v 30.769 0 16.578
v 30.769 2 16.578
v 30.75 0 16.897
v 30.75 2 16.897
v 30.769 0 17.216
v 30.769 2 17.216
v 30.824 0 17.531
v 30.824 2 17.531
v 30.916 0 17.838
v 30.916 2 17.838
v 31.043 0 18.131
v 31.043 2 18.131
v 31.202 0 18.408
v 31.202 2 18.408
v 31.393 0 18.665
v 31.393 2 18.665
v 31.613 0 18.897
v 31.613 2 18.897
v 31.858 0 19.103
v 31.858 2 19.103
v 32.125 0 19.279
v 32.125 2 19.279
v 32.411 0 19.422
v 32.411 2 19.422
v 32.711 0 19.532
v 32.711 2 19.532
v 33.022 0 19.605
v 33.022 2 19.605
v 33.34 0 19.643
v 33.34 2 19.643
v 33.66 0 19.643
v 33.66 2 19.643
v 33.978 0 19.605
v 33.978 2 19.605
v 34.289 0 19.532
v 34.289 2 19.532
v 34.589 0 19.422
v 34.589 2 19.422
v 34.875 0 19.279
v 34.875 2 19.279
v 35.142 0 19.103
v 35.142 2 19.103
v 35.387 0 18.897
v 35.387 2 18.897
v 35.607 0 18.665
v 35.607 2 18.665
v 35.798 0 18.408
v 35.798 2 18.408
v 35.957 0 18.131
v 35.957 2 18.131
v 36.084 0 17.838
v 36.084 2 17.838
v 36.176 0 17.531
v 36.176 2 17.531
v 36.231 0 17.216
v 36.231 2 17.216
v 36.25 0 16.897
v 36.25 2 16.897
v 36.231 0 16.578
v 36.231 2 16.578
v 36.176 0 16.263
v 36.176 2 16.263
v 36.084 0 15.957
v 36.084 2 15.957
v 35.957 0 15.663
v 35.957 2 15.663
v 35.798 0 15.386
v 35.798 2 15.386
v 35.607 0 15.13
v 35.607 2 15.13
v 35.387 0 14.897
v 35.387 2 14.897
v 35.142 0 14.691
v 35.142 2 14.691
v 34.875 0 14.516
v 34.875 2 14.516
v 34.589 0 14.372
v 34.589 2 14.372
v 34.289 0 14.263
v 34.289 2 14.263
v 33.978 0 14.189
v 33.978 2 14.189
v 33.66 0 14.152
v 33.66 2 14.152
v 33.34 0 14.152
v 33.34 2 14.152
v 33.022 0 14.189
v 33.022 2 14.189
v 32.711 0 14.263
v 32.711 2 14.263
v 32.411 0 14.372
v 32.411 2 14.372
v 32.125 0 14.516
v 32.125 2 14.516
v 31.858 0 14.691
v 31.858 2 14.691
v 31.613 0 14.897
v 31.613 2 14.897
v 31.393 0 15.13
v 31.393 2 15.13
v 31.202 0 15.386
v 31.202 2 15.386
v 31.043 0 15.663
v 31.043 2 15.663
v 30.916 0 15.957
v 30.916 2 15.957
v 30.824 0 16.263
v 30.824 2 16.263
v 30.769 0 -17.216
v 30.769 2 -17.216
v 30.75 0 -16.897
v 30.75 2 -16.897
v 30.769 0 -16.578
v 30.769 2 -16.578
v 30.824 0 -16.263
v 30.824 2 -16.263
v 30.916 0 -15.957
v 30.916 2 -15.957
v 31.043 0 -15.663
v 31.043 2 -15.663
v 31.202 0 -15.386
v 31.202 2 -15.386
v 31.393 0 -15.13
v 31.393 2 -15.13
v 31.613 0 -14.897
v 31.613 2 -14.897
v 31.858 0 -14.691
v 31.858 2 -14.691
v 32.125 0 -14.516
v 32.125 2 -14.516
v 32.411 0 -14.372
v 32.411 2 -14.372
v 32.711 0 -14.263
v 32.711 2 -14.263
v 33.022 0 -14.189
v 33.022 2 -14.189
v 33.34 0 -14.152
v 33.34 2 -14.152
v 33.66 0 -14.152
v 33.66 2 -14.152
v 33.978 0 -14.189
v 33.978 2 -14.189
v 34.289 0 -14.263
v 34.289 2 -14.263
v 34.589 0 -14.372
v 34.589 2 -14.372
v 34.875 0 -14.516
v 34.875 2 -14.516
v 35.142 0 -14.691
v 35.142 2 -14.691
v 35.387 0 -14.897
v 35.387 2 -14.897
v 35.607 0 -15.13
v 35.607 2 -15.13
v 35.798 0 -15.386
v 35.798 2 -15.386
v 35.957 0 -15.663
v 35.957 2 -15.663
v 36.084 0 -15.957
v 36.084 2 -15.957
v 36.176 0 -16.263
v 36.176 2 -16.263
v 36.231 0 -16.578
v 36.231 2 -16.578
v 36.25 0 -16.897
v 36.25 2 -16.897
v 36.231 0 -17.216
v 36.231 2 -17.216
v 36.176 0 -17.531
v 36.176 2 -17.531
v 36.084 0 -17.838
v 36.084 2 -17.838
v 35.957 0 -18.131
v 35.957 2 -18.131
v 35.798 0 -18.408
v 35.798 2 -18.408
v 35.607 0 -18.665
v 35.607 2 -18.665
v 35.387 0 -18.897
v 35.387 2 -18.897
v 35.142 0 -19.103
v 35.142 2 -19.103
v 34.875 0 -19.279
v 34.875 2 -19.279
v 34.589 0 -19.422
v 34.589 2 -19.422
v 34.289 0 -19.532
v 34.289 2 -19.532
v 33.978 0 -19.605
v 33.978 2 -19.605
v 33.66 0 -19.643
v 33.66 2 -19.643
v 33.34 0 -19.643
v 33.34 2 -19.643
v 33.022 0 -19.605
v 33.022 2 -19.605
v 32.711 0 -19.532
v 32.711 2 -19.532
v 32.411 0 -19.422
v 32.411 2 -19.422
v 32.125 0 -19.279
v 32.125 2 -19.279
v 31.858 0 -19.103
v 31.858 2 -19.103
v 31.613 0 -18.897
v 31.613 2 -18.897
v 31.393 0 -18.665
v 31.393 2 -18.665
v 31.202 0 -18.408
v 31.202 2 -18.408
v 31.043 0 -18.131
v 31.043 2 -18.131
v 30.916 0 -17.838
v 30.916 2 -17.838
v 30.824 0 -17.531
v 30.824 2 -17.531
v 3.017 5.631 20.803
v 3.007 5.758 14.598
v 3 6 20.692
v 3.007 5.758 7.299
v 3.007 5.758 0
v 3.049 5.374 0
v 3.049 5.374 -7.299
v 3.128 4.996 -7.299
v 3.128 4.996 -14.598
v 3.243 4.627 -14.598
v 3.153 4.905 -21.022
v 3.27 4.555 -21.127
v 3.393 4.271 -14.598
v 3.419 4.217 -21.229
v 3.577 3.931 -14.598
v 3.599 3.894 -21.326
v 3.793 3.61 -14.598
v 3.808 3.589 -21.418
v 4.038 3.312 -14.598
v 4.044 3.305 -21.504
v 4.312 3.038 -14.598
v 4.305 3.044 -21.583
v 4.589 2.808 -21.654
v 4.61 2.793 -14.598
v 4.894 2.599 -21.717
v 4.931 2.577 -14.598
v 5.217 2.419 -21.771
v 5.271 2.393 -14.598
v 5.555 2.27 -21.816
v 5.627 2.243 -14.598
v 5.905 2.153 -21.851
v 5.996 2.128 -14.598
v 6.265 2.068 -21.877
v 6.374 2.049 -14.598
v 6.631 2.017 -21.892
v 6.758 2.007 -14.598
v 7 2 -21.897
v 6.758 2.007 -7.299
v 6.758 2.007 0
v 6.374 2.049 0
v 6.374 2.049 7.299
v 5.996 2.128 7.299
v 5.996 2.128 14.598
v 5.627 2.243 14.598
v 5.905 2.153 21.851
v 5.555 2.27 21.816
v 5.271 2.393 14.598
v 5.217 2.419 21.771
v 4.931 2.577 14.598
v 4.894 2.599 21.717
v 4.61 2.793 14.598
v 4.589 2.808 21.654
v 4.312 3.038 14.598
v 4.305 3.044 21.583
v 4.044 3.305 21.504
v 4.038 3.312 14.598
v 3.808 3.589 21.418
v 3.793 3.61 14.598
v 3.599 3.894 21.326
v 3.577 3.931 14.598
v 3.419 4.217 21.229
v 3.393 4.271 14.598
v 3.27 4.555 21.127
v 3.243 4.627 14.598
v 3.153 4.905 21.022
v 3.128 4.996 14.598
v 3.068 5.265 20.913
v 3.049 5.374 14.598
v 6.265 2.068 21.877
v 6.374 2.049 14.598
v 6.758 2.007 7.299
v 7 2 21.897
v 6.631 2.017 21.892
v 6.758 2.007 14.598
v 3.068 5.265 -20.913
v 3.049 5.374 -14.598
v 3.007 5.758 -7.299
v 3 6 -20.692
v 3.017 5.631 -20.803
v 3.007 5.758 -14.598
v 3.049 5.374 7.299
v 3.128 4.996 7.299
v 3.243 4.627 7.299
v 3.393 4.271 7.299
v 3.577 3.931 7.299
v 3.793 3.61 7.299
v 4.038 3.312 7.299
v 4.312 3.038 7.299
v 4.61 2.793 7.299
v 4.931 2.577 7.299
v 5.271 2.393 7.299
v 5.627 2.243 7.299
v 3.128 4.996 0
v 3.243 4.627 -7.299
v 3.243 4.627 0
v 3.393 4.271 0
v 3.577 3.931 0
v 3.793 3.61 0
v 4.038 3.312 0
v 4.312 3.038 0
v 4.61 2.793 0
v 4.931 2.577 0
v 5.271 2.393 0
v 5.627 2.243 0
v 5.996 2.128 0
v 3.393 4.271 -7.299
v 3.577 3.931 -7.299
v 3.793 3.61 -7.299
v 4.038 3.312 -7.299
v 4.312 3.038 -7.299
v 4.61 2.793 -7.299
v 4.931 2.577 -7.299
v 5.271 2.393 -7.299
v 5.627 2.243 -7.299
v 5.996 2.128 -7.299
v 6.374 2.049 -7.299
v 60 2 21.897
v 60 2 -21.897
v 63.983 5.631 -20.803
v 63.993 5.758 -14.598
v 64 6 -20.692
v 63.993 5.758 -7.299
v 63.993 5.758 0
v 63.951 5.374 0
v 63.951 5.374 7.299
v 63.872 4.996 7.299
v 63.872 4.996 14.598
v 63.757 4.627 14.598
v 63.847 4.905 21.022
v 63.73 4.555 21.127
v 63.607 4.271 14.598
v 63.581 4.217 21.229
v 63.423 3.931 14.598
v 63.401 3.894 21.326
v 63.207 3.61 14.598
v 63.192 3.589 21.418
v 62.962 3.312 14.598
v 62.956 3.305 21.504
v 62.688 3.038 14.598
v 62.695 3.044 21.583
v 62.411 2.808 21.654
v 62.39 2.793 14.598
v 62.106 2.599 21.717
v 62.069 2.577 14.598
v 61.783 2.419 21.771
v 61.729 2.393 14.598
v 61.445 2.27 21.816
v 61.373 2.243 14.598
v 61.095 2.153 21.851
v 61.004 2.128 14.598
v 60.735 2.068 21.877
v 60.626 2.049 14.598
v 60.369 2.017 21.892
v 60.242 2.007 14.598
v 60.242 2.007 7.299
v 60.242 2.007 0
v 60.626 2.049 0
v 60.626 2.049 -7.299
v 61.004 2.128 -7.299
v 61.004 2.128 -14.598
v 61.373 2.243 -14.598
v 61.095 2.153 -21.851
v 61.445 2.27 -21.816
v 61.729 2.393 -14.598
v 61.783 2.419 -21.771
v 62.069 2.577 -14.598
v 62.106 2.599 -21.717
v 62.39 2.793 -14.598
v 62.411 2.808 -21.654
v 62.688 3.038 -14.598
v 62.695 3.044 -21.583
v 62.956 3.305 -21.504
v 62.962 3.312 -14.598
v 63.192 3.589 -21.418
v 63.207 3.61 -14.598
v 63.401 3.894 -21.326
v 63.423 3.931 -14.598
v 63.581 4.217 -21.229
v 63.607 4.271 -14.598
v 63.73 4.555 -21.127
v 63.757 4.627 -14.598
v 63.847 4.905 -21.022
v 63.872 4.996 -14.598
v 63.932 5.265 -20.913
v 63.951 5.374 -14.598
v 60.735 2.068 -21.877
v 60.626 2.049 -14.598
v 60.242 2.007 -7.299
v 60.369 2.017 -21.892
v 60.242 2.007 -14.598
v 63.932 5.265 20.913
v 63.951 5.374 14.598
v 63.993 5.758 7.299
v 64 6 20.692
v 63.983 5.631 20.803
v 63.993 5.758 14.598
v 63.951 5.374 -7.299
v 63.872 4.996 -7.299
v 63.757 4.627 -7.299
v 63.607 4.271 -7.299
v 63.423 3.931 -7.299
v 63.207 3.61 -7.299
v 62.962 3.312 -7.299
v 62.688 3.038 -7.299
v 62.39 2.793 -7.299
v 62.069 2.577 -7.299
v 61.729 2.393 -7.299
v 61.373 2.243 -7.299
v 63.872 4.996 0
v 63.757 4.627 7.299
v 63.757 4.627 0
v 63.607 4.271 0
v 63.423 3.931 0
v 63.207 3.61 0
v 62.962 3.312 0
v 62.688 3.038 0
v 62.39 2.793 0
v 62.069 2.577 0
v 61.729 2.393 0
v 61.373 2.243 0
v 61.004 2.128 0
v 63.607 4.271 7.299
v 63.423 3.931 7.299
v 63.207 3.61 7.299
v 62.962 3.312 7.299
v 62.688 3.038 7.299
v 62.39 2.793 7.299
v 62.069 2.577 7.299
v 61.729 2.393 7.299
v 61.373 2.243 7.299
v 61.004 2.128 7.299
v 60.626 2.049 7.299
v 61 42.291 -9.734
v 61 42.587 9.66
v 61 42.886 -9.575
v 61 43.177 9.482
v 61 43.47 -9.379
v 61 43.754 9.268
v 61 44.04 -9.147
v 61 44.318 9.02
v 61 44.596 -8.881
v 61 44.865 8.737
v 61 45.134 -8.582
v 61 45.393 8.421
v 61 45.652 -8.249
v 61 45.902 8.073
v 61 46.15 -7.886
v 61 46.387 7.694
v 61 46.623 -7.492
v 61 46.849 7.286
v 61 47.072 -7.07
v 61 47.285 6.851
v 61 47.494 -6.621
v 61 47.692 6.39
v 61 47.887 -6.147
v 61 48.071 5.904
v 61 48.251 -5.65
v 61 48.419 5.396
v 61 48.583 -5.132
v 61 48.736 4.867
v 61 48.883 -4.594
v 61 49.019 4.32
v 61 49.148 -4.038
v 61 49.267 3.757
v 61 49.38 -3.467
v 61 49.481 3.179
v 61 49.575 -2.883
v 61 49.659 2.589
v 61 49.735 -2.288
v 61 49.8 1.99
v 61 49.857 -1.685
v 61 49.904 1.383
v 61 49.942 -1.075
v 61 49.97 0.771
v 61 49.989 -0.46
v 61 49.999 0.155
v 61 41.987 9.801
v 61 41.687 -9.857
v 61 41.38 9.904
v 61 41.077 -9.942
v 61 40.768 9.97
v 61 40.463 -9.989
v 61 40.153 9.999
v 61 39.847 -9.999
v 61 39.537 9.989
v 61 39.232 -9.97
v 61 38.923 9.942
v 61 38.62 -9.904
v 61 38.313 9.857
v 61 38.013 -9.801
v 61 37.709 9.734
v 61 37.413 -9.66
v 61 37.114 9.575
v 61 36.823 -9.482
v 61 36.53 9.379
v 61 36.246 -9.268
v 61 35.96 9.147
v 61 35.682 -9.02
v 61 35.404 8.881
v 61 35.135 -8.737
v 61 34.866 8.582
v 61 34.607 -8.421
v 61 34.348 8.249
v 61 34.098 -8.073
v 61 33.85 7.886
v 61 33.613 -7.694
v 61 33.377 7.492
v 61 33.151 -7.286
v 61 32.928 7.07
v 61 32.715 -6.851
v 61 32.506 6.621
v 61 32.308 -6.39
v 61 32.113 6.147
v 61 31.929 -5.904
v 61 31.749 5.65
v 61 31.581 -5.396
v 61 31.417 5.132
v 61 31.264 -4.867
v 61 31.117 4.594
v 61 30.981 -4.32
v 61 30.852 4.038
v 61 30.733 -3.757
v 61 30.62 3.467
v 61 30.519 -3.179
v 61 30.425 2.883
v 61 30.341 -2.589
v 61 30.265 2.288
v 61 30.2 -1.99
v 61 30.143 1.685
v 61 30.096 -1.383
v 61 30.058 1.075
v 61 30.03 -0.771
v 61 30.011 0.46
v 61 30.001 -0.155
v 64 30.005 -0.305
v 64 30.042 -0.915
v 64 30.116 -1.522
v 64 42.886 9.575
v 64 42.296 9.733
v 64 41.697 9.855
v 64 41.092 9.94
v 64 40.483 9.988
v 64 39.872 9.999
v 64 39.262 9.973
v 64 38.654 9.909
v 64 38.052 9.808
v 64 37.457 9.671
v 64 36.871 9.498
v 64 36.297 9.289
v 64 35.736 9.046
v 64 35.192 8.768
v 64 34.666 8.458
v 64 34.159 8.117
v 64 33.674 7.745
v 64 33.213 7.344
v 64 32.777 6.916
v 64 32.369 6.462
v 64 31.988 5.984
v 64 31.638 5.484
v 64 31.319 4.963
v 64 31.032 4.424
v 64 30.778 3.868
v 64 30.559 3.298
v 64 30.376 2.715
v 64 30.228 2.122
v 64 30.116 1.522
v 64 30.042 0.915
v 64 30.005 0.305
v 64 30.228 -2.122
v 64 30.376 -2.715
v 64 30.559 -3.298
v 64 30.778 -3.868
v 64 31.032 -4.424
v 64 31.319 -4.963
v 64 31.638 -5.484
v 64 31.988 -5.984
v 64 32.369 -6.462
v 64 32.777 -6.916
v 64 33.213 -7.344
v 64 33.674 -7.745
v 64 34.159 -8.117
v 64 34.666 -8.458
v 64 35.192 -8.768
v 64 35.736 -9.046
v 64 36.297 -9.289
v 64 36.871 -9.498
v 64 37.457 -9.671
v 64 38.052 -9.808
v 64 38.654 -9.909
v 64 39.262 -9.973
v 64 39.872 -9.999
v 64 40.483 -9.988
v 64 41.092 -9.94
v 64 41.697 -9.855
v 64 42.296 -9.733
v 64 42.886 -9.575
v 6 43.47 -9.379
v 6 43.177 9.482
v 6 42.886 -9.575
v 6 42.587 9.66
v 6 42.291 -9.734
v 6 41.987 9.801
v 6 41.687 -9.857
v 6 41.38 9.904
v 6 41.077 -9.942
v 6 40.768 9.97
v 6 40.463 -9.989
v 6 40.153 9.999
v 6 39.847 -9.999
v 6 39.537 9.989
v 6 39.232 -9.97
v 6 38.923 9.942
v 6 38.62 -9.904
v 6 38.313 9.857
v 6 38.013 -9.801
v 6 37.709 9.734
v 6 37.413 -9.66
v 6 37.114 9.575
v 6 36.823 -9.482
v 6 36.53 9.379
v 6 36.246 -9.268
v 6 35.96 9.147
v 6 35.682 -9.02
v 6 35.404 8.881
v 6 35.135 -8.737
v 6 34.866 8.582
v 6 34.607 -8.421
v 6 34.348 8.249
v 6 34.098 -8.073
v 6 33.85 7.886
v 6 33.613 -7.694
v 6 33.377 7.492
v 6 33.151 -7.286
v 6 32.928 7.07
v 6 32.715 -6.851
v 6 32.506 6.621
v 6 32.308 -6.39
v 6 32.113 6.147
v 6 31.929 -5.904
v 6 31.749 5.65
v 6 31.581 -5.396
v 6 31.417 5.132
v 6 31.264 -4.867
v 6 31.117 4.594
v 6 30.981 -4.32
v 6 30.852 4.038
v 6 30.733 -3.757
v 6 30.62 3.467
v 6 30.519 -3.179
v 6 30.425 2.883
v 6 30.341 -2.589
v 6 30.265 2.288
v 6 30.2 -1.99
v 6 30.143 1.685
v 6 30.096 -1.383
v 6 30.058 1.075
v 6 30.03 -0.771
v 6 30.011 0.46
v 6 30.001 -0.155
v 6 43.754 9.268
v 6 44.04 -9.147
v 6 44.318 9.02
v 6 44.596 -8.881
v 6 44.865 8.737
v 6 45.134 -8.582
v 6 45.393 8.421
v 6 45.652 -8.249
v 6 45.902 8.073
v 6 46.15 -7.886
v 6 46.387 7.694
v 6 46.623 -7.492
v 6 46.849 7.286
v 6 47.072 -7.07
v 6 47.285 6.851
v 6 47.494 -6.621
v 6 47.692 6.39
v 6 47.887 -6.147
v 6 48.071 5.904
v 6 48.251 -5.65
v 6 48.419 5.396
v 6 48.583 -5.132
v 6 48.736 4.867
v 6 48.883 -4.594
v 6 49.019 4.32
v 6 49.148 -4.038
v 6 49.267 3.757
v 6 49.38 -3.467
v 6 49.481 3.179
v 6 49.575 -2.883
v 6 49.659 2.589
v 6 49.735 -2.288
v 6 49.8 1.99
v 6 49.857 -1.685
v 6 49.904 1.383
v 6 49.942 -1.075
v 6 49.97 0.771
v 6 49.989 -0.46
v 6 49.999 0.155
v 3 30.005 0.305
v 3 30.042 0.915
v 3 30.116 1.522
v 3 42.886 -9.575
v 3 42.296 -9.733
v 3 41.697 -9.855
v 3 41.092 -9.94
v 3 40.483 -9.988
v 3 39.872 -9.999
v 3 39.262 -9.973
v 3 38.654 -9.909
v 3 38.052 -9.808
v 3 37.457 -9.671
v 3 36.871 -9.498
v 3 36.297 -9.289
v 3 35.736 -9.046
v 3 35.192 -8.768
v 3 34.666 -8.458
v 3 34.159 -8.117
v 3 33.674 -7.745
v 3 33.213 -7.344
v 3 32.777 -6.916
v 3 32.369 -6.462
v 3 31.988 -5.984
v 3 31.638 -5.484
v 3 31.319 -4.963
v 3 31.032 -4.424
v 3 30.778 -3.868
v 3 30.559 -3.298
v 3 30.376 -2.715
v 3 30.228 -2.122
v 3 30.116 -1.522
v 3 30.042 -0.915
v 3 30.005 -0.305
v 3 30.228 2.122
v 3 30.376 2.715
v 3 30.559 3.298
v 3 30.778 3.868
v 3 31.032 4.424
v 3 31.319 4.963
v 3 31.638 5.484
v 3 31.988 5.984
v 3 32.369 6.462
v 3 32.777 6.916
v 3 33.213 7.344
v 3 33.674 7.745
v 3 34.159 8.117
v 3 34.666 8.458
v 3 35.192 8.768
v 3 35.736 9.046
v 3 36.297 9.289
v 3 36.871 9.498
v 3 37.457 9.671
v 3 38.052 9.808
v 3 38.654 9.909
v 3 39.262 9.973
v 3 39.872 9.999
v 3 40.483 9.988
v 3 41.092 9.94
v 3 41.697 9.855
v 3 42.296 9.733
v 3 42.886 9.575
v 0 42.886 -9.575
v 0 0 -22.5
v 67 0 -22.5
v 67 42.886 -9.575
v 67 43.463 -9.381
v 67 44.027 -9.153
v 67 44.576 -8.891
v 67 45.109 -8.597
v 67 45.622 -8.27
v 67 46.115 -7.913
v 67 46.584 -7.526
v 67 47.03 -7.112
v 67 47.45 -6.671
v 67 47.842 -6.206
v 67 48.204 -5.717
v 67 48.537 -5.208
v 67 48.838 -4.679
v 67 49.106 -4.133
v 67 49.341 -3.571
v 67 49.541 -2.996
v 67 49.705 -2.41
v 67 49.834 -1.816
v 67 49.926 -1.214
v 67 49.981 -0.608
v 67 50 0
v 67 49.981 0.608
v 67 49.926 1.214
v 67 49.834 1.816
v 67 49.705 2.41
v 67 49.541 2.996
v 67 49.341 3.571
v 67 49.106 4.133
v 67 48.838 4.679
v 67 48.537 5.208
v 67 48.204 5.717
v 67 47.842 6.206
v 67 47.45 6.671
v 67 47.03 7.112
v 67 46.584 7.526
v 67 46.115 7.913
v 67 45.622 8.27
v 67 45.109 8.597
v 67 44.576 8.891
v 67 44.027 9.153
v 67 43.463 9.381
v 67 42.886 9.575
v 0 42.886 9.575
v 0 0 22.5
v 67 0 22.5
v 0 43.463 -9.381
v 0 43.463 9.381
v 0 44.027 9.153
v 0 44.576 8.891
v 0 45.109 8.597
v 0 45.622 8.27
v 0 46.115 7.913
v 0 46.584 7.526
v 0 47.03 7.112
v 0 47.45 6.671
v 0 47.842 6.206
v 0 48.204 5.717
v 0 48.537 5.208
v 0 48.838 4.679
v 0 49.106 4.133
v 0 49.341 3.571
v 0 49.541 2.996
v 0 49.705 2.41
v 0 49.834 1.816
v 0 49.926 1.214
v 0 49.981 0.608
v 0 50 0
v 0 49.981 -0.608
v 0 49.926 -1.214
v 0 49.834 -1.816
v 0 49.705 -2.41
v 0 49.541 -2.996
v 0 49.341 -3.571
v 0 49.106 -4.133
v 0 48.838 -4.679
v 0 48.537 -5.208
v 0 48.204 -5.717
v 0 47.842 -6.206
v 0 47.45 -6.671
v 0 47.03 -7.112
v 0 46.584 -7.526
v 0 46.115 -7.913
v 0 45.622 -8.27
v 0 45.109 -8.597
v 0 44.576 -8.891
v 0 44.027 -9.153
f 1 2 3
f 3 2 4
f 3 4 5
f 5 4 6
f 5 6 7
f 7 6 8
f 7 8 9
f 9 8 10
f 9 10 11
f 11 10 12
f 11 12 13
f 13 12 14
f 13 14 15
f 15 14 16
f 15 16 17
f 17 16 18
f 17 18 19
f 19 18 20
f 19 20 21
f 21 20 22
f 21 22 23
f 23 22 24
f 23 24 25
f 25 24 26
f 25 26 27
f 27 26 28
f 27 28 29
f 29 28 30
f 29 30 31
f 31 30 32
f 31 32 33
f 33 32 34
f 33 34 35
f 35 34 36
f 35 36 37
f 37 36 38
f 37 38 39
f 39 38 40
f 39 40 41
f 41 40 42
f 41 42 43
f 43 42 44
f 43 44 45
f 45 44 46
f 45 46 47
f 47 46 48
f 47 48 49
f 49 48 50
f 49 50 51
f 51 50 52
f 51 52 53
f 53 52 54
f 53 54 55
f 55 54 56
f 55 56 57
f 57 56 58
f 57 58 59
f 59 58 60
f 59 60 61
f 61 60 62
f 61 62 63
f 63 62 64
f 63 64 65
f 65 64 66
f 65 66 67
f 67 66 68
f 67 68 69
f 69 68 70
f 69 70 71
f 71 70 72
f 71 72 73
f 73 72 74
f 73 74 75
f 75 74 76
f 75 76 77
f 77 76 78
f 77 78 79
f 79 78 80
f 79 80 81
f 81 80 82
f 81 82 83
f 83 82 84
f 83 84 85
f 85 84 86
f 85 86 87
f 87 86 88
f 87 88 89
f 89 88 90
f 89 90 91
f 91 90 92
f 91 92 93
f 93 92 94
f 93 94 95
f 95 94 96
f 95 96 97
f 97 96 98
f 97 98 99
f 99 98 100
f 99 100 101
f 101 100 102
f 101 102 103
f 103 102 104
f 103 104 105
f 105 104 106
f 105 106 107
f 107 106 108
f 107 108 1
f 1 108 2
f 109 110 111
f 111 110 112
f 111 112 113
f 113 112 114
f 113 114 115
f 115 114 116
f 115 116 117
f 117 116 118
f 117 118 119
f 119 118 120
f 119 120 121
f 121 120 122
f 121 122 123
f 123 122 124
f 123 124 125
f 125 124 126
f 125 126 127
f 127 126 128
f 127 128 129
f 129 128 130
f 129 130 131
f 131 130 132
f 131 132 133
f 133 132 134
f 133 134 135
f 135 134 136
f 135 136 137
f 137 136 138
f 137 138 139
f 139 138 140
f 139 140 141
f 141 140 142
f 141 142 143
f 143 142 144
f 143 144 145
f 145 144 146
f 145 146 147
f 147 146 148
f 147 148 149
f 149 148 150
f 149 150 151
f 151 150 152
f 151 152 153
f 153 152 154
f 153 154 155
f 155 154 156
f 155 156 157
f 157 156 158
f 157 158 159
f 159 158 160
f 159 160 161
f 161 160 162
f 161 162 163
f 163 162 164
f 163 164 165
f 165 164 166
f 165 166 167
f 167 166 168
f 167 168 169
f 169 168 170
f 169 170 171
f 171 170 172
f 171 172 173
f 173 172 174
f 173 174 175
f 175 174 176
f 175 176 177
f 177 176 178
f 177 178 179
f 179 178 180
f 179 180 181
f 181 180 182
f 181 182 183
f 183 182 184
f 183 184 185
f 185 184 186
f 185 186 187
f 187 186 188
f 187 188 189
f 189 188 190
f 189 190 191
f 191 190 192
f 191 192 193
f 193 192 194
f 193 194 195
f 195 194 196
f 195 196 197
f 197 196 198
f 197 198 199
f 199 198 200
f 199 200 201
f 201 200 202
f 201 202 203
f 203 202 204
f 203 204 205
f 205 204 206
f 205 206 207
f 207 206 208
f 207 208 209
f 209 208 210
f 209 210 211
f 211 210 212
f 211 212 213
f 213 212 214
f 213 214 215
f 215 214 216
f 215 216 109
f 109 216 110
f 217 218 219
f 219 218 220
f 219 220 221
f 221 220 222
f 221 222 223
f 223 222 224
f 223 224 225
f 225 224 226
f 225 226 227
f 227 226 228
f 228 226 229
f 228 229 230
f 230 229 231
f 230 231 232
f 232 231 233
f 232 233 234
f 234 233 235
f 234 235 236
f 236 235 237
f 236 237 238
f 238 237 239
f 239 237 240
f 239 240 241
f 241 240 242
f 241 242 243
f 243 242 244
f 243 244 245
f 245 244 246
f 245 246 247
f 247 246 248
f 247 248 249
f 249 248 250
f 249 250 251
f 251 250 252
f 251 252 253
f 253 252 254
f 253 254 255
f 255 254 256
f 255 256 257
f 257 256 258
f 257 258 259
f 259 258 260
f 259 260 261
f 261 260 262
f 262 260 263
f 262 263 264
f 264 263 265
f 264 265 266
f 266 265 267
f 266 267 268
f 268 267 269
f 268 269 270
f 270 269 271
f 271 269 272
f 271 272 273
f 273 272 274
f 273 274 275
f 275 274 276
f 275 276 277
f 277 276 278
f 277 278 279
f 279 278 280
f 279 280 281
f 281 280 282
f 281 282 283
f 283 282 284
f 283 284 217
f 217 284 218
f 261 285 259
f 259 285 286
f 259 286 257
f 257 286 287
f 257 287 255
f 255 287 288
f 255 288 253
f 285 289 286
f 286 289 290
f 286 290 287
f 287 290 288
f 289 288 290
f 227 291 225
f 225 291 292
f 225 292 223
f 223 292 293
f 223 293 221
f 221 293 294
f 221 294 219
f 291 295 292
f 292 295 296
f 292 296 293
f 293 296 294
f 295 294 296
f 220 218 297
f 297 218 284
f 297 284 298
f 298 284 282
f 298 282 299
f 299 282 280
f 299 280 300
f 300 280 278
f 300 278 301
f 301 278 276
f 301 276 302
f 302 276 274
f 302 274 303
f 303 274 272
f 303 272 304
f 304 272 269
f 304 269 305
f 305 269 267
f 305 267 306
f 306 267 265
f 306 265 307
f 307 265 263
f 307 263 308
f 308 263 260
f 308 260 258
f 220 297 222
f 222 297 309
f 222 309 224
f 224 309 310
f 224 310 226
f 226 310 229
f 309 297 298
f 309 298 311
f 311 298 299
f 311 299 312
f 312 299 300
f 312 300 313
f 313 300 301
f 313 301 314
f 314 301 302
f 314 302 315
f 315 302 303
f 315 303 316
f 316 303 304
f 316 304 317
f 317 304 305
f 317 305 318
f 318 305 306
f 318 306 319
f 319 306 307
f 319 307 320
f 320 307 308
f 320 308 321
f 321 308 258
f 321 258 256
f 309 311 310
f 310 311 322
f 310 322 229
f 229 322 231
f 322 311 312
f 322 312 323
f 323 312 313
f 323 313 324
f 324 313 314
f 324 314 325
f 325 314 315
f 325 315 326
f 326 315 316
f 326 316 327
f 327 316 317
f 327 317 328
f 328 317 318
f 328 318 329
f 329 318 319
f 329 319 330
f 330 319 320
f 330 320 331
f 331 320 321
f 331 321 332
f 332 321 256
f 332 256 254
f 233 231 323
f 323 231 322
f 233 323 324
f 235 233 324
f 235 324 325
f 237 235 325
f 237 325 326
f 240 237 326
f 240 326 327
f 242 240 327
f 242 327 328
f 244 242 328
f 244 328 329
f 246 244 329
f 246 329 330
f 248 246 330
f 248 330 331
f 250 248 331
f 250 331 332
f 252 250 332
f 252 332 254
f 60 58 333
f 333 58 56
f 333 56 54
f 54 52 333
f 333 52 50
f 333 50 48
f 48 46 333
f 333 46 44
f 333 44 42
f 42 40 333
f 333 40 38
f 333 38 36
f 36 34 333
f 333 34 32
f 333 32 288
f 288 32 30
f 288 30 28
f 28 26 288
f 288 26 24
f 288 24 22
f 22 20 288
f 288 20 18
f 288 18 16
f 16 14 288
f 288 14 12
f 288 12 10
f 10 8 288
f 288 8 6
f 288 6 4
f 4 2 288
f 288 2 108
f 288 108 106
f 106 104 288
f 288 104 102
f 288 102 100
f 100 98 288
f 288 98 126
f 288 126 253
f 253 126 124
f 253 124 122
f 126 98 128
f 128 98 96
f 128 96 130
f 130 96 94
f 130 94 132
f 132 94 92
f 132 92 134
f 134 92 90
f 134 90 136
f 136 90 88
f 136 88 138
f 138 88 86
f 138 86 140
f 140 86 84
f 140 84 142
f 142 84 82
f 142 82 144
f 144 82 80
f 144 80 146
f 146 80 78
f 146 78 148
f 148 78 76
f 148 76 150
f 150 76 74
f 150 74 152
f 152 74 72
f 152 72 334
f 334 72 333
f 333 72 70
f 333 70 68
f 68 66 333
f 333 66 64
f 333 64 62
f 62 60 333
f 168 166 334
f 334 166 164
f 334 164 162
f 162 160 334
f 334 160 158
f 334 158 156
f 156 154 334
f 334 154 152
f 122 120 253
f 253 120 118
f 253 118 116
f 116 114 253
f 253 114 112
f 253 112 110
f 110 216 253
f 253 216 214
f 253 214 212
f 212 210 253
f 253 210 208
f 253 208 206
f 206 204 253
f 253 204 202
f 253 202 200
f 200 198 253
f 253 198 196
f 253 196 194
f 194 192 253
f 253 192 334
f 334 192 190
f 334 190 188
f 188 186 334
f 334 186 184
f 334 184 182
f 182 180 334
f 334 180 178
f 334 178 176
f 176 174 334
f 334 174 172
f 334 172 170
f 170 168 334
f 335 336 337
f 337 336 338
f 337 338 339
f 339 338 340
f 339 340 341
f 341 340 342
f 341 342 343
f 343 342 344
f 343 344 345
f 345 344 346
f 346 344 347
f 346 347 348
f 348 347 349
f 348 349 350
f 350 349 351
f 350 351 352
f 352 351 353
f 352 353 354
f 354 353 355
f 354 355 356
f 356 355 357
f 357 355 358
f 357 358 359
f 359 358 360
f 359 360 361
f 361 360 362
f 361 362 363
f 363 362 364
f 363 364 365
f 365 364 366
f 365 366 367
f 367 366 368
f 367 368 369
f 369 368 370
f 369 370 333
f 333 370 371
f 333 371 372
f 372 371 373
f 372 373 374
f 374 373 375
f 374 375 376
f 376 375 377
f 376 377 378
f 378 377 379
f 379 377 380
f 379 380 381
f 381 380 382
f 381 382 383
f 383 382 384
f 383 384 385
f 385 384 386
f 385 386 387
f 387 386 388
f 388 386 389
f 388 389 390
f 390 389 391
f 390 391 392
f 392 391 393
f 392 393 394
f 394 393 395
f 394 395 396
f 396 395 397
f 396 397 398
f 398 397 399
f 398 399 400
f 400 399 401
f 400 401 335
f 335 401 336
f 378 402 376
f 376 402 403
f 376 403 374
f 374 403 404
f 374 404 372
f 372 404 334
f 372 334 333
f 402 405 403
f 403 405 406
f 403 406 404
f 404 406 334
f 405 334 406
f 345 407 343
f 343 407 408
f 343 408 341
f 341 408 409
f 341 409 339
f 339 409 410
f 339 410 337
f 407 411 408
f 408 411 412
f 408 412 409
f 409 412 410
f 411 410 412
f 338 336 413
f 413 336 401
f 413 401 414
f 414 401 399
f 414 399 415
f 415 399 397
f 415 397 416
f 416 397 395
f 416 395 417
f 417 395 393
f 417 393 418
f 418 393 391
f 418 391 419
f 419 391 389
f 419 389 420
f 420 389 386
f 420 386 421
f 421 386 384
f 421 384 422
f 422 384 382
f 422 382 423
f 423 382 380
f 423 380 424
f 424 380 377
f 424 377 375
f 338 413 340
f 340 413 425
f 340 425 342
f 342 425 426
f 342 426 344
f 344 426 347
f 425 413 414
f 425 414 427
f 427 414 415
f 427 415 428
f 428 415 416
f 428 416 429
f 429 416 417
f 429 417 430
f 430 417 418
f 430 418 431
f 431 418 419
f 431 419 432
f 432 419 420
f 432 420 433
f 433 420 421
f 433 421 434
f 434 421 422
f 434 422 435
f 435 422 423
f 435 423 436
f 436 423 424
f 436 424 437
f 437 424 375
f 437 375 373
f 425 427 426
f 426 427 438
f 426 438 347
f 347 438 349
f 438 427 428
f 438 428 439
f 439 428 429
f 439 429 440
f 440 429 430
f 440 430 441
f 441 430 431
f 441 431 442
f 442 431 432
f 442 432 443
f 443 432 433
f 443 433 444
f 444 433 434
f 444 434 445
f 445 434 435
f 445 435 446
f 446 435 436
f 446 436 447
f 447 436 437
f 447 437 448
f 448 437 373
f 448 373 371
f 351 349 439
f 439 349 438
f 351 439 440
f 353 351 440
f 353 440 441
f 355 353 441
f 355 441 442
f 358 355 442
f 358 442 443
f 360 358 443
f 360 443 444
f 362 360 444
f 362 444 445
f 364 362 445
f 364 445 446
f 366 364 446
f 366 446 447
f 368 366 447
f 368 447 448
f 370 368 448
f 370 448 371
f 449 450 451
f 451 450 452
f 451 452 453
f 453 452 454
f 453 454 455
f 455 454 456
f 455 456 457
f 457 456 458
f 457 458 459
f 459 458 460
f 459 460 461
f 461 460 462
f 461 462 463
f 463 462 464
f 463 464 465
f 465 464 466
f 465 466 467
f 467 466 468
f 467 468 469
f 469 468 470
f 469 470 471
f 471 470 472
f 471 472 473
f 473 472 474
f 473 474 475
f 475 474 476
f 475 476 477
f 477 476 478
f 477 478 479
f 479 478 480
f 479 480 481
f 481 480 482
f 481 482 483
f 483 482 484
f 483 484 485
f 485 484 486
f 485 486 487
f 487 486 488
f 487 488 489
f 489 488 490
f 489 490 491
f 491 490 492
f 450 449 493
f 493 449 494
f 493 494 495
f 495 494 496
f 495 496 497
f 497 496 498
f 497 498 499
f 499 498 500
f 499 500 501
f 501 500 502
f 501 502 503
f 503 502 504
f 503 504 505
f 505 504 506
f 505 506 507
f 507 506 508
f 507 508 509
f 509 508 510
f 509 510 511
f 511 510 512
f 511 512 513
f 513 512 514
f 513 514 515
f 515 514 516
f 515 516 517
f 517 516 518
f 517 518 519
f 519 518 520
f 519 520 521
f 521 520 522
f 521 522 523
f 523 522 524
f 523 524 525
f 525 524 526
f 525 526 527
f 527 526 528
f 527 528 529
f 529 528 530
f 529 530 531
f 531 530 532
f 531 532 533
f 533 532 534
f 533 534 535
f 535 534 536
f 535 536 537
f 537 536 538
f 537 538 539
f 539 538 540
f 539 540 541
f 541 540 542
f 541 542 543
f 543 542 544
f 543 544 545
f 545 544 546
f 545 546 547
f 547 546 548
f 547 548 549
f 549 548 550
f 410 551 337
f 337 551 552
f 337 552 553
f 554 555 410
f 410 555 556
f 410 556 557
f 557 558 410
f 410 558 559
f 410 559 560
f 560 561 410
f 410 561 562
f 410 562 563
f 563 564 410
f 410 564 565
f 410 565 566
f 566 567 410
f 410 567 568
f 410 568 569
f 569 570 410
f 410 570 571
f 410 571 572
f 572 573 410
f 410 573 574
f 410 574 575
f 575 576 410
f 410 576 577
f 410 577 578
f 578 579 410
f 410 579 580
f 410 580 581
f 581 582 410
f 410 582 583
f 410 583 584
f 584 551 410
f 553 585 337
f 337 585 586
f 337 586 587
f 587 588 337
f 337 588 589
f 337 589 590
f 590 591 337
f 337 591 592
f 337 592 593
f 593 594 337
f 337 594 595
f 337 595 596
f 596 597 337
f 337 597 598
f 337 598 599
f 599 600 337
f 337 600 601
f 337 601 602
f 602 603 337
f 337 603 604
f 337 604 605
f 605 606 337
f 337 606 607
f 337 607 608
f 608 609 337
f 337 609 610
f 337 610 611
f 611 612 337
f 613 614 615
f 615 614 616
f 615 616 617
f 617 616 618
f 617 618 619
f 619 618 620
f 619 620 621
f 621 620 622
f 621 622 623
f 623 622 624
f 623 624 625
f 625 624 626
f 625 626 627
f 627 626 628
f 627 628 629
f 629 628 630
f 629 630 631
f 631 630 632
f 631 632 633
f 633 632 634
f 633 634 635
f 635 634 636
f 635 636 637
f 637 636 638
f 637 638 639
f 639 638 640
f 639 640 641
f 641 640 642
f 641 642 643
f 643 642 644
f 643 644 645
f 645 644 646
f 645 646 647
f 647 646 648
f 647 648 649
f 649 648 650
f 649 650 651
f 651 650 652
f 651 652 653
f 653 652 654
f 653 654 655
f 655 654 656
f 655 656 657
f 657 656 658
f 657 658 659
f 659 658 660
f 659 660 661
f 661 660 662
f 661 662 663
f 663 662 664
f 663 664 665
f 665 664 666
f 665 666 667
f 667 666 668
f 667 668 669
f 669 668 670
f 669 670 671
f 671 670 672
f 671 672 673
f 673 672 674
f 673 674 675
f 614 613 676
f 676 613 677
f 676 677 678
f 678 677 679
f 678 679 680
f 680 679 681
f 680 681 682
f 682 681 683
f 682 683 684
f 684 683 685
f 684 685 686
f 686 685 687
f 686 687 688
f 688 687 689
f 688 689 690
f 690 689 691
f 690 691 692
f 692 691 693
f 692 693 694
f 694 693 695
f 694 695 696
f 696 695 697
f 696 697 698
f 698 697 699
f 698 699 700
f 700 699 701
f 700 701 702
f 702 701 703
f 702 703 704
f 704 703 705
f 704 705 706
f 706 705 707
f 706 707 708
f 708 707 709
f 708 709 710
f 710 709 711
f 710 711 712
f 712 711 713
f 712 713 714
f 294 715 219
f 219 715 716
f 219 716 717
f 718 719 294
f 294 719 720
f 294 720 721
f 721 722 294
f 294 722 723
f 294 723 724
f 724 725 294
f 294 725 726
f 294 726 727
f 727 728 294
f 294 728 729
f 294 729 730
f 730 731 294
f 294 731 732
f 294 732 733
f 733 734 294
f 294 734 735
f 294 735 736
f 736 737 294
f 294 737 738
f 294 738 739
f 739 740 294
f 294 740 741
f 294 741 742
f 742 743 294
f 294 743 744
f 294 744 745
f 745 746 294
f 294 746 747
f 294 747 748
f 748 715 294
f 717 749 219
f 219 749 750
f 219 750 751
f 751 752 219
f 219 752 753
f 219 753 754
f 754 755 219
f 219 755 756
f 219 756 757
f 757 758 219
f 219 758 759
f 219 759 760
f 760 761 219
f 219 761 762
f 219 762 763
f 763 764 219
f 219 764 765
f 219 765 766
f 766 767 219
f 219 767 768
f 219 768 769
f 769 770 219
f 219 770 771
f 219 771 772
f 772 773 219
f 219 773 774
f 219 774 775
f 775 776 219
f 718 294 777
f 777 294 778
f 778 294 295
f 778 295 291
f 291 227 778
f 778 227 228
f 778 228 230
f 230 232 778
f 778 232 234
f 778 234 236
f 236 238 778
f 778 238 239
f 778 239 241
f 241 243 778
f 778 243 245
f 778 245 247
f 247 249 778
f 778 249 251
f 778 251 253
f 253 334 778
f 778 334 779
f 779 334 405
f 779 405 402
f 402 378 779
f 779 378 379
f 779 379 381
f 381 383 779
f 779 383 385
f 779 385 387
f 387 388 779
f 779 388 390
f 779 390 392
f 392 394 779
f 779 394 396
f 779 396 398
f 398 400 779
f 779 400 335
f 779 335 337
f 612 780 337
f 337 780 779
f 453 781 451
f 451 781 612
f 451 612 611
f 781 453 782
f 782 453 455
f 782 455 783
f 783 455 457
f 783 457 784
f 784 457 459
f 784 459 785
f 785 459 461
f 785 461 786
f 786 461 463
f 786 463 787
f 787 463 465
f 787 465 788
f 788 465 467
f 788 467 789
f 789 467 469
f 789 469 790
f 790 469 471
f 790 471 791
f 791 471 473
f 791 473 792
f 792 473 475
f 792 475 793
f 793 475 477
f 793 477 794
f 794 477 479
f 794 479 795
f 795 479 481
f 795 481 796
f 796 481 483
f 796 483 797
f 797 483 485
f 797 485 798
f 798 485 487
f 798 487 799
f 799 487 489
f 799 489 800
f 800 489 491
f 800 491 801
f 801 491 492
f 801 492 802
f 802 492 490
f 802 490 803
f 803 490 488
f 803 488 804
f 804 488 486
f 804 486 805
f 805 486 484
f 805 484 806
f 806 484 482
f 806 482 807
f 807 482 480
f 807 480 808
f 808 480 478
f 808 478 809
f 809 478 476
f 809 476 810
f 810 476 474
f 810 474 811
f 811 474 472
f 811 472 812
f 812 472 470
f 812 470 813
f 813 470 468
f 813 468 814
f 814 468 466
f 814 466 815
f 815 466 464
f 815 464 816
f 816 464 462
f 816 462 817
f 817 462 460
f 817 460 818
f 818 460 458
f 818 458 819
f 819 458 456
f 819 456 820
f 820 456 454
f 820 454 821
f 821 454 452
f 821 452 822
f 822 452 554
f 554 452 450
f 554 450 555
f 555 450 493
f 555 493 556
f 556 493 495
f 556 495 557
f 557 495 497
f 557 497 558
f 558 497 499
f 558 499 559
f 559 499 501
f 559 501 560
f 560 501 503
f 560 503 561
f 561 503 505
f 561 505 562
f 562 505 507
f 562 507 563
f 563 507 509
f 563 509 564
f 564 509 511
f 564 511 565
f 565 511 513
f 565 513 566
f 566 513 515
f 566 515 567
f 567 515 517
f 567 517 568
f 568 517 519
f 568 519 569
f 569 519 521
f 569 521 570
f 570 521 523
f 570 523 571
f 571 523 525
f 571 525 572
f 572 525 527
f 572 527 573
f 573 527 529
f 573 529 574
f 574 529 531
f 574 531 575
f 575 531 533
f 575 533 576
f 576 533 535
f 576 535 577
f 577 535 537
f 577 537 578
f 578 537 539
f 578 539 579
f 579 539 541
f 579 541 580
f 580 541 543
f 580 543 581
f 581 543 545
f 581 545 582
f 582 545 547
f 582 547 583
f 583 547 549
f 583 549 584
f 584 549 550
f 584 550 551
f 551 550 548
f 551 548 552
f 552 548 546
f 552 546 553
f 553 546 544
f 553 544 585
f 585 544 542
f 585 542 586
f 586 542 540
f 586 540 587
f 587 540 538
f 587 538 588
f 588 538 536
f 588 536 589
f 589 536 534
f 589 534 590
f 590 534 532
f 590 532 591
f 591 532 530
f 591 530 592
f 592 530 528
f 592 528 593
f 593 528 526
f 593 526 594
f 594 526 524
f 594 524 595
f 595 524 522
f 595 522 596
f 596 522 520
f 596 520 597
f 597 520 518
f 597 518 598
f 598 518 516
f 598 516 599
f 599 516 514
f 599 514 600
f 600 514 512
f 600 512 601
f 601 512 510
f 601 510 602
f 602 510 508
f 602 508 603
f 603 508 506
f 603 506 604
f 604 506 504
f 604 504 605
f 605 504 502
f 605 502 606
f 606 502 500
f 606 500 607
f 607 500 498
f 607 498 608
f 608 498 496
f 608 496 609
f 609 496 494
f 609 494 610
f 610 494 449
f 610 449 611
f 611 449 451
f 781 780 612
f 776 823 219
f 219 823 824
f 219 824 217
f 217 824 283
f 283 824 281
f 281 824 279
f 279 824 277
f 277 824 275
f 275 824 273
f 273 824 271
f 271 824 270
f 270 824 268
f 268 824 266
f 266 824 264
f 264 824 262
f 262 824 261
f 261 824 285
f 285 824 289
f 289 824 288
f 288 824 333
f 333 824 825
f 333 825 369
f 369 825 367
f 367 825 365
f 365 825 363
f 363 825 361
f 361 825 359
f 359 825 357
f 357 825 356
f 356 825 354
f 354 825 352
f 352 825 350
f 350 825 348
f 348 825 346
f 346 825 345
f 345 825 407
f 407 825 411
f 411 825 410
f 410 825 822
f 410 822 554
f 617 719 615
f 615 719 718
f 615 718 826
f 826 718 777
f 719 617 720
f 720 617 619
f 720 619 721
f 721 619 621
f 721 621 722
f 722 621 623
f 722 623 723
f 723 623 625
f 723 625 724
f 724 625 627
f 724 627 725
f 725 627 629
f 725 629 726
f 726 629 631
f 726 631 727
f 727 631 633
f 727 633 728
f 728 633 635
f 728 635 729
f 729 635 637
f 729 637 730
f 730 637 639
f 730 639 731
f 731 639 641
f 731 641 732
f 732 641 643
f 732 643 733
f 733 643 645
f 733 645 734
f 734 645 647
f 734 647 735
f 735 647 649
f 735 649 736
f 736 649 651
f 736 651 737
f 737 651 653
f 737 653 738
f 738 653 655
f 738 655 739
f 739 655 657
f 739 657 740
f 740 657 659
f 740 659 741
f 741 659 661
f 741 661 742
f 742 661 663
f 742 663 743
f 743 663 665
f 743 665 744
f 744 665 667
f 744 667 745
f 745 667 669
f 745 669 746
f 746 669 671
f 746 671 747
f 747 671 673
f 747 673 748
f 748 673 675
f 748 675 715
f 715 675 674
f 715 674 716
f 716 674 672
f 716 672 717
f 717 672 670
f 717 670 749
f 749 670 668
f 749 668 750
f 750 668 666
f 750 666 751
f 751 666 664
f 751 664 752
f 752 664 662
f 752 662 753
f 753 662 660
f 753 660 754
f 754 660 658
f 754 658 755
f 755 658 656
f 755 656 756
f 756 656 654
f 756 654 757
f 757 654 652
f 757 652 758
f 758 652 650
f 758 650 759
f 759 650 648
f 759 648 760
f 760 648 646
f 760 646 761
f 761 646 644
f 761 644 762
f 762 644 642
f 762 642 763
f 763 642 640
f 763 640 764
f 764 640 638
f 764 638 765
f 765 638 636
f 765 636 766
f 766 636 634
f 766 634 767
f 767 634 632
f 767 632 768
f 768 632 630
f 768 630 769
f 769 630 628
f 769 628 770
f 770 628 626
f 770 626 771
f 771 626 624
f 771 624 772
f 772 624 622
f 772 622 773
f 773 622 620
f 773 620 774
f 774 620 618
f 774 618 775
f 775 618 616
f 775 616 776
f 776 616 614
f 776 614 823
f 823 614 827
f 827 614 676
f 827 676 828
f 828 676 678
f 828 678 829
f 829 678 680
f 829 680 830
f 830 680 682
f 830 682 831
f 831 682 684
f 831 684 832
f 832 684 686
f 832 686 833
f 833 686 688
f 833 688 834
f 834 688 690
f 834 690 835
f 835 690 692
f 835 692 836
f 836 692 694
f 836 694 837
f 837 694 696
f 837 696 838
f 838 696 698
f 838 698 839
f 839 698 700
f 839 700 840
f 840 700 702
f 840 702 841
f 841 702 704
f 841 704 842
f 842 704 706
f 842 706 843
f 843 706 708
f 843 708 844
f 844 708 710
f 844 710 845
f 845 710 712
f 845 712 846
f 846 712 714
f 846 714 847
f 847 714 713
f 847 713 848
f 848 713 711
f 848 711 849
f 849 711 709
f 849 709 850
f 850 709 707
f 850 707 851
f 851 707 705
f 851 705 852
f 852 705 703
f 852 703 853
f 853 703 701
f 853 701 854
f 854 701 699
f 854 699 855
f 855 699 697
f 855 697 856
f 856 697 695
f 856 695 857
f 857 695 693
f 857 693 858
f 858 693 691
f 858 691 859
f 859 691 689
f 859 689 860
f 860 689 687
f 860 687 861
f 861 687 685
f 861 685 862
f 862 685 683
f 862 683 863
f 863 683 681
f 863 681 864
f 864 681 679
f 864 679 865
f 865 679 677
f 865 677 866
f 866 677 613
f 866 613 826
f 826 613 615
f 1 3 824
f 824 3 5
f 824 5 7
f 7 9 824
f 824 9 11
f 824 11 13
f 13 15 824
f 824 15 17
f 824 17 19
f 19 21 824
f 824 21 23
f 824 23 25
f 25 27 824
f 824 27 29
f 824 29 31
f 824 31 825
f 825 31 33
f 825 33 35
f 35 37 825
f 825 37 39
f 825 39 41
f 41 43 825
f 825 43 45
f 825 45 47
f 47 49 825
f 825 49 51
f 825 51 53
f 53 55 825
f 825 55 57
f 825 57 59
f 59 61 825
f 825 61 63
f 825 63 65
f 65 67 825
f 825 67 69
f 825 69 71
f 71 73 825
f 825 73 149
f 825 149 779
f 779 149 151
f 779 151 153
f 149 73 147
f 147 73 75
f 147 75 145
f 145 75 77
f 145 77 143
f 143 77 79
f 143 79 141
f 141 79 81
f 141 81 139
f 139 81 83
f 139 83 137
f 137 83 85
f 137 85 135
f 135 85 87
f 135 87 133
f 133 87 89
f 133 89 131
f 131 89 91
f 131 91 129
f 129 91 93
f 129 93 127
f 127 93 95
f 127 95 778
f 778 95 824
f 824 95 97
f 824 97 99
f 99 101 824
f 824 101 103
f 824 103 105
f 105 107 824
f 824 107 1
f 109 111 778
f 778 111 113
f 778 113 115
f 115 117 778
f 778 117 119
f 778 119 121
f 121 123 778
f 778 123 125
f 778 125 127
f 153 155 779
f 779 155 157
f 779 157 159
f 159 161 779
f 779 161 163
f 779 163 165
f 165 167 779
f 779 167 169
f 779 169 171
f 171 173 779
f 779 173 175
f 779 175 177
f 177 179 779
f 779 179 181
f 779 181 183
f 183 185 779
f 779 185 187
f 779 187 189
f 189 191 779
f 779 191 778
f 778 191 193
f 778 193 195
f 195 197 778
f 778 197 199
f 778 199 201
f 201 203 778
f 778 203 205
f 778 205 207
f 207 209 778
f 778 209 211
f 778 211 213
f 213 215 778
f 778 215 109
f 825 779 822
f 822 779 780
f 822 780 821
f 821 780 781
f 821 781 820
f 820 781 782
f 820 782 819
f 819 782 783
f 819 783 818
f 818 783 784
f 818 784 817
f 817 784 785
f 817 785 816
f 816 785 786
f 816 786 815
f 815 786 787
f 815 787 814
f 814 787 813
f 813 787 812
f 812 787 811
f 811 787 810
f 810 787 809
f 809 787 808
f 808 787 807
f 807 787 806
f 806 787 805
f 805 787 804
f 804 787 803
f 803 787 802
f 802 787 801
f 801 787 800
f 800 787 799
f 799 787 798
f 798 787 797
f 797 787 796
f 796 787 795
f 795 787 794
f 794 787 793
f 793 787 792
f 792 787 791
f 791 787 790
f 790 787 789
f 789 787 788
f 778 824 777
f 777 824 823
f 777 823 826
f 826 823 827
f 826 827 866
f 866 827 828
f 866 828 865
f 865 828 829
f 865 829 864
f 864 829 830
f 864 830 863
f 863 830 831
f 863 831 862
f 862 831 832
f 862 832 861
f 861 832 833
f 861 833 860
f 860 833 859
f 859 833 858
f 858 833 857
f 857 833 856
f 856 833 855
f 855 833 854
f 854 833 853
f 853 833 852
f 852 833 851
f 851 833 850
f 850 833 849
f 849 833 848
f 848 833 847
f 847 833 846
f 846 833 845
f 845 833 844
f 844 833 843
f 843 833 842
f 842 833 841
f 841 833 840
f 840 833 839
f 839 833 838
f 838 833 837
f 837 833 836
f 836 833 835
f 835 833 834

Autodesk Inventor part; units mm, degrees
ref_plane "YZ Plane" through (0, 0, 0) normal (1, 0, 0) x (0, 1, 0)
ref_plane "XZ Plane" through (0, 0, 0) normal (0, 1, 0) x (-1, 0, 0)
sketch "Sketch1" plane through (0, 0, 0) normal (1, 0, 0) x (0, 1, 0)
  circle A0 centre (40, 0) radius 32 construction
  arc A1 (42.8857, -9.5746) -> (42.8857, 9.5746) centre (40, 0) ccw
  line L0 (42.8857, -9.5746) -> (0, -22.5)
  line L1 (0, -22.5) -> (0, 0)
  line L2 (0, 0) -> (28, 0) construction
  line L3 (42.8857, 9.5746) -> (0, 22.5)
  line L4 (0, 22.5) -> (0, 0)
  line L5 (40, 0) -> (28, 0) construction
  dimension "d0" = 20
  dimension "d1" = 64
  dimension "d2" = 40
  dimension "d3" = 45
extrude "Extrusion1" add sketch "Sketch1" along normal blind 67
ref_plane "Work Plane1" through (0, 2, -22.5) normal (0, -1, 0) x (1, 0, 0)
sketch "Sketch2" plane through (0, 2, -22.5) normal (0, -1, 0) x (1, 0, 0)
  line L0 (0, 45) -> (0, 0) construction
  line L1 (0, 0) -> (67, 0) construction
  line L2 (67, 45) -> (67, 0) construction
  line L3 (0, 45) -> (67, 45) construction
  line L4 (0, 45) -> (67, 45) construction
  line L5 (0, 0) -> (67, 0) construction
  line L6 (64, 45) -> (3, 45)
  line L7 (3, 45) -> (3, 0)
  line L8 (3, 0) -> (64, 0)
  line L9 (64, 0) -> (64, 45)
  line L10 (67, 45) -> (67, 0) projected
  line L11 (67, 22.5) -> (64, 22.5) construction
  line L12 (0, 22.5) -> (3, 22.5) construction
  dimension "d7" = 61
extrude "Extrusion2" cut sketch "Sketch2" against normal through all
sketch "Sketch3" plane through (3, 2, 21.8972) normal (1, 0, 0) x (0, 0, -1)
  arc A0 (31.4718, 40.8857) -> (12.3226, 40.8857) centre (21.8972, 38) ccw projected
  circle A1 centre (21.8972, 38) radius 10
  point P0 (21.8972, -2)
extrude "Extrusion3" add sketch "Sketch3" along normal blind 3
sketch "Sketch4" plane through (64, 2, -21.8972) normal (-1, 0, 0) x (0, 0, 1)
  arc A0 (31.4718, 40.8857) -> (12.3226, 40.8857) centre (21.8972, 38) ccw projected
  circle A1 centre (21.8972, 38) radius 10
  point P0 (21.8972, -2)
  point P1 (12.3226, 40.8857)
extrude "Extrusion4" add sketch "Sketch4" along normal blind 3
fillet "Fillet1" radius 4 2 edges at (64, 2, 0) (3, 2, 0)
sketch "Sketch5" plane through (0, 2, -22.5) normal (0, 1, 0) x (1, 0, 0)
  line L0 (60, -44.3972) -> (7, -44.3972) projected
  line L1 (33.5, -44.3972) -> (33.5, -0.6028) construction
  line L2 (7, -0.6028) -> (60, -0.6028) projected
  circle A0 centre (33.5, -39.3972) radius 2.75
  circle A1 centre (33.5, -5.6028) radius 2.75
  point P0 (0, -22.5)
  dimension "d18" = 5
  dimension "d19" = 5.5
  dimension "d20" = 5
extrude "Extrusion5" cut sketch "Sketch5" against normal blind 3
properties part number "SpoolHolder"
